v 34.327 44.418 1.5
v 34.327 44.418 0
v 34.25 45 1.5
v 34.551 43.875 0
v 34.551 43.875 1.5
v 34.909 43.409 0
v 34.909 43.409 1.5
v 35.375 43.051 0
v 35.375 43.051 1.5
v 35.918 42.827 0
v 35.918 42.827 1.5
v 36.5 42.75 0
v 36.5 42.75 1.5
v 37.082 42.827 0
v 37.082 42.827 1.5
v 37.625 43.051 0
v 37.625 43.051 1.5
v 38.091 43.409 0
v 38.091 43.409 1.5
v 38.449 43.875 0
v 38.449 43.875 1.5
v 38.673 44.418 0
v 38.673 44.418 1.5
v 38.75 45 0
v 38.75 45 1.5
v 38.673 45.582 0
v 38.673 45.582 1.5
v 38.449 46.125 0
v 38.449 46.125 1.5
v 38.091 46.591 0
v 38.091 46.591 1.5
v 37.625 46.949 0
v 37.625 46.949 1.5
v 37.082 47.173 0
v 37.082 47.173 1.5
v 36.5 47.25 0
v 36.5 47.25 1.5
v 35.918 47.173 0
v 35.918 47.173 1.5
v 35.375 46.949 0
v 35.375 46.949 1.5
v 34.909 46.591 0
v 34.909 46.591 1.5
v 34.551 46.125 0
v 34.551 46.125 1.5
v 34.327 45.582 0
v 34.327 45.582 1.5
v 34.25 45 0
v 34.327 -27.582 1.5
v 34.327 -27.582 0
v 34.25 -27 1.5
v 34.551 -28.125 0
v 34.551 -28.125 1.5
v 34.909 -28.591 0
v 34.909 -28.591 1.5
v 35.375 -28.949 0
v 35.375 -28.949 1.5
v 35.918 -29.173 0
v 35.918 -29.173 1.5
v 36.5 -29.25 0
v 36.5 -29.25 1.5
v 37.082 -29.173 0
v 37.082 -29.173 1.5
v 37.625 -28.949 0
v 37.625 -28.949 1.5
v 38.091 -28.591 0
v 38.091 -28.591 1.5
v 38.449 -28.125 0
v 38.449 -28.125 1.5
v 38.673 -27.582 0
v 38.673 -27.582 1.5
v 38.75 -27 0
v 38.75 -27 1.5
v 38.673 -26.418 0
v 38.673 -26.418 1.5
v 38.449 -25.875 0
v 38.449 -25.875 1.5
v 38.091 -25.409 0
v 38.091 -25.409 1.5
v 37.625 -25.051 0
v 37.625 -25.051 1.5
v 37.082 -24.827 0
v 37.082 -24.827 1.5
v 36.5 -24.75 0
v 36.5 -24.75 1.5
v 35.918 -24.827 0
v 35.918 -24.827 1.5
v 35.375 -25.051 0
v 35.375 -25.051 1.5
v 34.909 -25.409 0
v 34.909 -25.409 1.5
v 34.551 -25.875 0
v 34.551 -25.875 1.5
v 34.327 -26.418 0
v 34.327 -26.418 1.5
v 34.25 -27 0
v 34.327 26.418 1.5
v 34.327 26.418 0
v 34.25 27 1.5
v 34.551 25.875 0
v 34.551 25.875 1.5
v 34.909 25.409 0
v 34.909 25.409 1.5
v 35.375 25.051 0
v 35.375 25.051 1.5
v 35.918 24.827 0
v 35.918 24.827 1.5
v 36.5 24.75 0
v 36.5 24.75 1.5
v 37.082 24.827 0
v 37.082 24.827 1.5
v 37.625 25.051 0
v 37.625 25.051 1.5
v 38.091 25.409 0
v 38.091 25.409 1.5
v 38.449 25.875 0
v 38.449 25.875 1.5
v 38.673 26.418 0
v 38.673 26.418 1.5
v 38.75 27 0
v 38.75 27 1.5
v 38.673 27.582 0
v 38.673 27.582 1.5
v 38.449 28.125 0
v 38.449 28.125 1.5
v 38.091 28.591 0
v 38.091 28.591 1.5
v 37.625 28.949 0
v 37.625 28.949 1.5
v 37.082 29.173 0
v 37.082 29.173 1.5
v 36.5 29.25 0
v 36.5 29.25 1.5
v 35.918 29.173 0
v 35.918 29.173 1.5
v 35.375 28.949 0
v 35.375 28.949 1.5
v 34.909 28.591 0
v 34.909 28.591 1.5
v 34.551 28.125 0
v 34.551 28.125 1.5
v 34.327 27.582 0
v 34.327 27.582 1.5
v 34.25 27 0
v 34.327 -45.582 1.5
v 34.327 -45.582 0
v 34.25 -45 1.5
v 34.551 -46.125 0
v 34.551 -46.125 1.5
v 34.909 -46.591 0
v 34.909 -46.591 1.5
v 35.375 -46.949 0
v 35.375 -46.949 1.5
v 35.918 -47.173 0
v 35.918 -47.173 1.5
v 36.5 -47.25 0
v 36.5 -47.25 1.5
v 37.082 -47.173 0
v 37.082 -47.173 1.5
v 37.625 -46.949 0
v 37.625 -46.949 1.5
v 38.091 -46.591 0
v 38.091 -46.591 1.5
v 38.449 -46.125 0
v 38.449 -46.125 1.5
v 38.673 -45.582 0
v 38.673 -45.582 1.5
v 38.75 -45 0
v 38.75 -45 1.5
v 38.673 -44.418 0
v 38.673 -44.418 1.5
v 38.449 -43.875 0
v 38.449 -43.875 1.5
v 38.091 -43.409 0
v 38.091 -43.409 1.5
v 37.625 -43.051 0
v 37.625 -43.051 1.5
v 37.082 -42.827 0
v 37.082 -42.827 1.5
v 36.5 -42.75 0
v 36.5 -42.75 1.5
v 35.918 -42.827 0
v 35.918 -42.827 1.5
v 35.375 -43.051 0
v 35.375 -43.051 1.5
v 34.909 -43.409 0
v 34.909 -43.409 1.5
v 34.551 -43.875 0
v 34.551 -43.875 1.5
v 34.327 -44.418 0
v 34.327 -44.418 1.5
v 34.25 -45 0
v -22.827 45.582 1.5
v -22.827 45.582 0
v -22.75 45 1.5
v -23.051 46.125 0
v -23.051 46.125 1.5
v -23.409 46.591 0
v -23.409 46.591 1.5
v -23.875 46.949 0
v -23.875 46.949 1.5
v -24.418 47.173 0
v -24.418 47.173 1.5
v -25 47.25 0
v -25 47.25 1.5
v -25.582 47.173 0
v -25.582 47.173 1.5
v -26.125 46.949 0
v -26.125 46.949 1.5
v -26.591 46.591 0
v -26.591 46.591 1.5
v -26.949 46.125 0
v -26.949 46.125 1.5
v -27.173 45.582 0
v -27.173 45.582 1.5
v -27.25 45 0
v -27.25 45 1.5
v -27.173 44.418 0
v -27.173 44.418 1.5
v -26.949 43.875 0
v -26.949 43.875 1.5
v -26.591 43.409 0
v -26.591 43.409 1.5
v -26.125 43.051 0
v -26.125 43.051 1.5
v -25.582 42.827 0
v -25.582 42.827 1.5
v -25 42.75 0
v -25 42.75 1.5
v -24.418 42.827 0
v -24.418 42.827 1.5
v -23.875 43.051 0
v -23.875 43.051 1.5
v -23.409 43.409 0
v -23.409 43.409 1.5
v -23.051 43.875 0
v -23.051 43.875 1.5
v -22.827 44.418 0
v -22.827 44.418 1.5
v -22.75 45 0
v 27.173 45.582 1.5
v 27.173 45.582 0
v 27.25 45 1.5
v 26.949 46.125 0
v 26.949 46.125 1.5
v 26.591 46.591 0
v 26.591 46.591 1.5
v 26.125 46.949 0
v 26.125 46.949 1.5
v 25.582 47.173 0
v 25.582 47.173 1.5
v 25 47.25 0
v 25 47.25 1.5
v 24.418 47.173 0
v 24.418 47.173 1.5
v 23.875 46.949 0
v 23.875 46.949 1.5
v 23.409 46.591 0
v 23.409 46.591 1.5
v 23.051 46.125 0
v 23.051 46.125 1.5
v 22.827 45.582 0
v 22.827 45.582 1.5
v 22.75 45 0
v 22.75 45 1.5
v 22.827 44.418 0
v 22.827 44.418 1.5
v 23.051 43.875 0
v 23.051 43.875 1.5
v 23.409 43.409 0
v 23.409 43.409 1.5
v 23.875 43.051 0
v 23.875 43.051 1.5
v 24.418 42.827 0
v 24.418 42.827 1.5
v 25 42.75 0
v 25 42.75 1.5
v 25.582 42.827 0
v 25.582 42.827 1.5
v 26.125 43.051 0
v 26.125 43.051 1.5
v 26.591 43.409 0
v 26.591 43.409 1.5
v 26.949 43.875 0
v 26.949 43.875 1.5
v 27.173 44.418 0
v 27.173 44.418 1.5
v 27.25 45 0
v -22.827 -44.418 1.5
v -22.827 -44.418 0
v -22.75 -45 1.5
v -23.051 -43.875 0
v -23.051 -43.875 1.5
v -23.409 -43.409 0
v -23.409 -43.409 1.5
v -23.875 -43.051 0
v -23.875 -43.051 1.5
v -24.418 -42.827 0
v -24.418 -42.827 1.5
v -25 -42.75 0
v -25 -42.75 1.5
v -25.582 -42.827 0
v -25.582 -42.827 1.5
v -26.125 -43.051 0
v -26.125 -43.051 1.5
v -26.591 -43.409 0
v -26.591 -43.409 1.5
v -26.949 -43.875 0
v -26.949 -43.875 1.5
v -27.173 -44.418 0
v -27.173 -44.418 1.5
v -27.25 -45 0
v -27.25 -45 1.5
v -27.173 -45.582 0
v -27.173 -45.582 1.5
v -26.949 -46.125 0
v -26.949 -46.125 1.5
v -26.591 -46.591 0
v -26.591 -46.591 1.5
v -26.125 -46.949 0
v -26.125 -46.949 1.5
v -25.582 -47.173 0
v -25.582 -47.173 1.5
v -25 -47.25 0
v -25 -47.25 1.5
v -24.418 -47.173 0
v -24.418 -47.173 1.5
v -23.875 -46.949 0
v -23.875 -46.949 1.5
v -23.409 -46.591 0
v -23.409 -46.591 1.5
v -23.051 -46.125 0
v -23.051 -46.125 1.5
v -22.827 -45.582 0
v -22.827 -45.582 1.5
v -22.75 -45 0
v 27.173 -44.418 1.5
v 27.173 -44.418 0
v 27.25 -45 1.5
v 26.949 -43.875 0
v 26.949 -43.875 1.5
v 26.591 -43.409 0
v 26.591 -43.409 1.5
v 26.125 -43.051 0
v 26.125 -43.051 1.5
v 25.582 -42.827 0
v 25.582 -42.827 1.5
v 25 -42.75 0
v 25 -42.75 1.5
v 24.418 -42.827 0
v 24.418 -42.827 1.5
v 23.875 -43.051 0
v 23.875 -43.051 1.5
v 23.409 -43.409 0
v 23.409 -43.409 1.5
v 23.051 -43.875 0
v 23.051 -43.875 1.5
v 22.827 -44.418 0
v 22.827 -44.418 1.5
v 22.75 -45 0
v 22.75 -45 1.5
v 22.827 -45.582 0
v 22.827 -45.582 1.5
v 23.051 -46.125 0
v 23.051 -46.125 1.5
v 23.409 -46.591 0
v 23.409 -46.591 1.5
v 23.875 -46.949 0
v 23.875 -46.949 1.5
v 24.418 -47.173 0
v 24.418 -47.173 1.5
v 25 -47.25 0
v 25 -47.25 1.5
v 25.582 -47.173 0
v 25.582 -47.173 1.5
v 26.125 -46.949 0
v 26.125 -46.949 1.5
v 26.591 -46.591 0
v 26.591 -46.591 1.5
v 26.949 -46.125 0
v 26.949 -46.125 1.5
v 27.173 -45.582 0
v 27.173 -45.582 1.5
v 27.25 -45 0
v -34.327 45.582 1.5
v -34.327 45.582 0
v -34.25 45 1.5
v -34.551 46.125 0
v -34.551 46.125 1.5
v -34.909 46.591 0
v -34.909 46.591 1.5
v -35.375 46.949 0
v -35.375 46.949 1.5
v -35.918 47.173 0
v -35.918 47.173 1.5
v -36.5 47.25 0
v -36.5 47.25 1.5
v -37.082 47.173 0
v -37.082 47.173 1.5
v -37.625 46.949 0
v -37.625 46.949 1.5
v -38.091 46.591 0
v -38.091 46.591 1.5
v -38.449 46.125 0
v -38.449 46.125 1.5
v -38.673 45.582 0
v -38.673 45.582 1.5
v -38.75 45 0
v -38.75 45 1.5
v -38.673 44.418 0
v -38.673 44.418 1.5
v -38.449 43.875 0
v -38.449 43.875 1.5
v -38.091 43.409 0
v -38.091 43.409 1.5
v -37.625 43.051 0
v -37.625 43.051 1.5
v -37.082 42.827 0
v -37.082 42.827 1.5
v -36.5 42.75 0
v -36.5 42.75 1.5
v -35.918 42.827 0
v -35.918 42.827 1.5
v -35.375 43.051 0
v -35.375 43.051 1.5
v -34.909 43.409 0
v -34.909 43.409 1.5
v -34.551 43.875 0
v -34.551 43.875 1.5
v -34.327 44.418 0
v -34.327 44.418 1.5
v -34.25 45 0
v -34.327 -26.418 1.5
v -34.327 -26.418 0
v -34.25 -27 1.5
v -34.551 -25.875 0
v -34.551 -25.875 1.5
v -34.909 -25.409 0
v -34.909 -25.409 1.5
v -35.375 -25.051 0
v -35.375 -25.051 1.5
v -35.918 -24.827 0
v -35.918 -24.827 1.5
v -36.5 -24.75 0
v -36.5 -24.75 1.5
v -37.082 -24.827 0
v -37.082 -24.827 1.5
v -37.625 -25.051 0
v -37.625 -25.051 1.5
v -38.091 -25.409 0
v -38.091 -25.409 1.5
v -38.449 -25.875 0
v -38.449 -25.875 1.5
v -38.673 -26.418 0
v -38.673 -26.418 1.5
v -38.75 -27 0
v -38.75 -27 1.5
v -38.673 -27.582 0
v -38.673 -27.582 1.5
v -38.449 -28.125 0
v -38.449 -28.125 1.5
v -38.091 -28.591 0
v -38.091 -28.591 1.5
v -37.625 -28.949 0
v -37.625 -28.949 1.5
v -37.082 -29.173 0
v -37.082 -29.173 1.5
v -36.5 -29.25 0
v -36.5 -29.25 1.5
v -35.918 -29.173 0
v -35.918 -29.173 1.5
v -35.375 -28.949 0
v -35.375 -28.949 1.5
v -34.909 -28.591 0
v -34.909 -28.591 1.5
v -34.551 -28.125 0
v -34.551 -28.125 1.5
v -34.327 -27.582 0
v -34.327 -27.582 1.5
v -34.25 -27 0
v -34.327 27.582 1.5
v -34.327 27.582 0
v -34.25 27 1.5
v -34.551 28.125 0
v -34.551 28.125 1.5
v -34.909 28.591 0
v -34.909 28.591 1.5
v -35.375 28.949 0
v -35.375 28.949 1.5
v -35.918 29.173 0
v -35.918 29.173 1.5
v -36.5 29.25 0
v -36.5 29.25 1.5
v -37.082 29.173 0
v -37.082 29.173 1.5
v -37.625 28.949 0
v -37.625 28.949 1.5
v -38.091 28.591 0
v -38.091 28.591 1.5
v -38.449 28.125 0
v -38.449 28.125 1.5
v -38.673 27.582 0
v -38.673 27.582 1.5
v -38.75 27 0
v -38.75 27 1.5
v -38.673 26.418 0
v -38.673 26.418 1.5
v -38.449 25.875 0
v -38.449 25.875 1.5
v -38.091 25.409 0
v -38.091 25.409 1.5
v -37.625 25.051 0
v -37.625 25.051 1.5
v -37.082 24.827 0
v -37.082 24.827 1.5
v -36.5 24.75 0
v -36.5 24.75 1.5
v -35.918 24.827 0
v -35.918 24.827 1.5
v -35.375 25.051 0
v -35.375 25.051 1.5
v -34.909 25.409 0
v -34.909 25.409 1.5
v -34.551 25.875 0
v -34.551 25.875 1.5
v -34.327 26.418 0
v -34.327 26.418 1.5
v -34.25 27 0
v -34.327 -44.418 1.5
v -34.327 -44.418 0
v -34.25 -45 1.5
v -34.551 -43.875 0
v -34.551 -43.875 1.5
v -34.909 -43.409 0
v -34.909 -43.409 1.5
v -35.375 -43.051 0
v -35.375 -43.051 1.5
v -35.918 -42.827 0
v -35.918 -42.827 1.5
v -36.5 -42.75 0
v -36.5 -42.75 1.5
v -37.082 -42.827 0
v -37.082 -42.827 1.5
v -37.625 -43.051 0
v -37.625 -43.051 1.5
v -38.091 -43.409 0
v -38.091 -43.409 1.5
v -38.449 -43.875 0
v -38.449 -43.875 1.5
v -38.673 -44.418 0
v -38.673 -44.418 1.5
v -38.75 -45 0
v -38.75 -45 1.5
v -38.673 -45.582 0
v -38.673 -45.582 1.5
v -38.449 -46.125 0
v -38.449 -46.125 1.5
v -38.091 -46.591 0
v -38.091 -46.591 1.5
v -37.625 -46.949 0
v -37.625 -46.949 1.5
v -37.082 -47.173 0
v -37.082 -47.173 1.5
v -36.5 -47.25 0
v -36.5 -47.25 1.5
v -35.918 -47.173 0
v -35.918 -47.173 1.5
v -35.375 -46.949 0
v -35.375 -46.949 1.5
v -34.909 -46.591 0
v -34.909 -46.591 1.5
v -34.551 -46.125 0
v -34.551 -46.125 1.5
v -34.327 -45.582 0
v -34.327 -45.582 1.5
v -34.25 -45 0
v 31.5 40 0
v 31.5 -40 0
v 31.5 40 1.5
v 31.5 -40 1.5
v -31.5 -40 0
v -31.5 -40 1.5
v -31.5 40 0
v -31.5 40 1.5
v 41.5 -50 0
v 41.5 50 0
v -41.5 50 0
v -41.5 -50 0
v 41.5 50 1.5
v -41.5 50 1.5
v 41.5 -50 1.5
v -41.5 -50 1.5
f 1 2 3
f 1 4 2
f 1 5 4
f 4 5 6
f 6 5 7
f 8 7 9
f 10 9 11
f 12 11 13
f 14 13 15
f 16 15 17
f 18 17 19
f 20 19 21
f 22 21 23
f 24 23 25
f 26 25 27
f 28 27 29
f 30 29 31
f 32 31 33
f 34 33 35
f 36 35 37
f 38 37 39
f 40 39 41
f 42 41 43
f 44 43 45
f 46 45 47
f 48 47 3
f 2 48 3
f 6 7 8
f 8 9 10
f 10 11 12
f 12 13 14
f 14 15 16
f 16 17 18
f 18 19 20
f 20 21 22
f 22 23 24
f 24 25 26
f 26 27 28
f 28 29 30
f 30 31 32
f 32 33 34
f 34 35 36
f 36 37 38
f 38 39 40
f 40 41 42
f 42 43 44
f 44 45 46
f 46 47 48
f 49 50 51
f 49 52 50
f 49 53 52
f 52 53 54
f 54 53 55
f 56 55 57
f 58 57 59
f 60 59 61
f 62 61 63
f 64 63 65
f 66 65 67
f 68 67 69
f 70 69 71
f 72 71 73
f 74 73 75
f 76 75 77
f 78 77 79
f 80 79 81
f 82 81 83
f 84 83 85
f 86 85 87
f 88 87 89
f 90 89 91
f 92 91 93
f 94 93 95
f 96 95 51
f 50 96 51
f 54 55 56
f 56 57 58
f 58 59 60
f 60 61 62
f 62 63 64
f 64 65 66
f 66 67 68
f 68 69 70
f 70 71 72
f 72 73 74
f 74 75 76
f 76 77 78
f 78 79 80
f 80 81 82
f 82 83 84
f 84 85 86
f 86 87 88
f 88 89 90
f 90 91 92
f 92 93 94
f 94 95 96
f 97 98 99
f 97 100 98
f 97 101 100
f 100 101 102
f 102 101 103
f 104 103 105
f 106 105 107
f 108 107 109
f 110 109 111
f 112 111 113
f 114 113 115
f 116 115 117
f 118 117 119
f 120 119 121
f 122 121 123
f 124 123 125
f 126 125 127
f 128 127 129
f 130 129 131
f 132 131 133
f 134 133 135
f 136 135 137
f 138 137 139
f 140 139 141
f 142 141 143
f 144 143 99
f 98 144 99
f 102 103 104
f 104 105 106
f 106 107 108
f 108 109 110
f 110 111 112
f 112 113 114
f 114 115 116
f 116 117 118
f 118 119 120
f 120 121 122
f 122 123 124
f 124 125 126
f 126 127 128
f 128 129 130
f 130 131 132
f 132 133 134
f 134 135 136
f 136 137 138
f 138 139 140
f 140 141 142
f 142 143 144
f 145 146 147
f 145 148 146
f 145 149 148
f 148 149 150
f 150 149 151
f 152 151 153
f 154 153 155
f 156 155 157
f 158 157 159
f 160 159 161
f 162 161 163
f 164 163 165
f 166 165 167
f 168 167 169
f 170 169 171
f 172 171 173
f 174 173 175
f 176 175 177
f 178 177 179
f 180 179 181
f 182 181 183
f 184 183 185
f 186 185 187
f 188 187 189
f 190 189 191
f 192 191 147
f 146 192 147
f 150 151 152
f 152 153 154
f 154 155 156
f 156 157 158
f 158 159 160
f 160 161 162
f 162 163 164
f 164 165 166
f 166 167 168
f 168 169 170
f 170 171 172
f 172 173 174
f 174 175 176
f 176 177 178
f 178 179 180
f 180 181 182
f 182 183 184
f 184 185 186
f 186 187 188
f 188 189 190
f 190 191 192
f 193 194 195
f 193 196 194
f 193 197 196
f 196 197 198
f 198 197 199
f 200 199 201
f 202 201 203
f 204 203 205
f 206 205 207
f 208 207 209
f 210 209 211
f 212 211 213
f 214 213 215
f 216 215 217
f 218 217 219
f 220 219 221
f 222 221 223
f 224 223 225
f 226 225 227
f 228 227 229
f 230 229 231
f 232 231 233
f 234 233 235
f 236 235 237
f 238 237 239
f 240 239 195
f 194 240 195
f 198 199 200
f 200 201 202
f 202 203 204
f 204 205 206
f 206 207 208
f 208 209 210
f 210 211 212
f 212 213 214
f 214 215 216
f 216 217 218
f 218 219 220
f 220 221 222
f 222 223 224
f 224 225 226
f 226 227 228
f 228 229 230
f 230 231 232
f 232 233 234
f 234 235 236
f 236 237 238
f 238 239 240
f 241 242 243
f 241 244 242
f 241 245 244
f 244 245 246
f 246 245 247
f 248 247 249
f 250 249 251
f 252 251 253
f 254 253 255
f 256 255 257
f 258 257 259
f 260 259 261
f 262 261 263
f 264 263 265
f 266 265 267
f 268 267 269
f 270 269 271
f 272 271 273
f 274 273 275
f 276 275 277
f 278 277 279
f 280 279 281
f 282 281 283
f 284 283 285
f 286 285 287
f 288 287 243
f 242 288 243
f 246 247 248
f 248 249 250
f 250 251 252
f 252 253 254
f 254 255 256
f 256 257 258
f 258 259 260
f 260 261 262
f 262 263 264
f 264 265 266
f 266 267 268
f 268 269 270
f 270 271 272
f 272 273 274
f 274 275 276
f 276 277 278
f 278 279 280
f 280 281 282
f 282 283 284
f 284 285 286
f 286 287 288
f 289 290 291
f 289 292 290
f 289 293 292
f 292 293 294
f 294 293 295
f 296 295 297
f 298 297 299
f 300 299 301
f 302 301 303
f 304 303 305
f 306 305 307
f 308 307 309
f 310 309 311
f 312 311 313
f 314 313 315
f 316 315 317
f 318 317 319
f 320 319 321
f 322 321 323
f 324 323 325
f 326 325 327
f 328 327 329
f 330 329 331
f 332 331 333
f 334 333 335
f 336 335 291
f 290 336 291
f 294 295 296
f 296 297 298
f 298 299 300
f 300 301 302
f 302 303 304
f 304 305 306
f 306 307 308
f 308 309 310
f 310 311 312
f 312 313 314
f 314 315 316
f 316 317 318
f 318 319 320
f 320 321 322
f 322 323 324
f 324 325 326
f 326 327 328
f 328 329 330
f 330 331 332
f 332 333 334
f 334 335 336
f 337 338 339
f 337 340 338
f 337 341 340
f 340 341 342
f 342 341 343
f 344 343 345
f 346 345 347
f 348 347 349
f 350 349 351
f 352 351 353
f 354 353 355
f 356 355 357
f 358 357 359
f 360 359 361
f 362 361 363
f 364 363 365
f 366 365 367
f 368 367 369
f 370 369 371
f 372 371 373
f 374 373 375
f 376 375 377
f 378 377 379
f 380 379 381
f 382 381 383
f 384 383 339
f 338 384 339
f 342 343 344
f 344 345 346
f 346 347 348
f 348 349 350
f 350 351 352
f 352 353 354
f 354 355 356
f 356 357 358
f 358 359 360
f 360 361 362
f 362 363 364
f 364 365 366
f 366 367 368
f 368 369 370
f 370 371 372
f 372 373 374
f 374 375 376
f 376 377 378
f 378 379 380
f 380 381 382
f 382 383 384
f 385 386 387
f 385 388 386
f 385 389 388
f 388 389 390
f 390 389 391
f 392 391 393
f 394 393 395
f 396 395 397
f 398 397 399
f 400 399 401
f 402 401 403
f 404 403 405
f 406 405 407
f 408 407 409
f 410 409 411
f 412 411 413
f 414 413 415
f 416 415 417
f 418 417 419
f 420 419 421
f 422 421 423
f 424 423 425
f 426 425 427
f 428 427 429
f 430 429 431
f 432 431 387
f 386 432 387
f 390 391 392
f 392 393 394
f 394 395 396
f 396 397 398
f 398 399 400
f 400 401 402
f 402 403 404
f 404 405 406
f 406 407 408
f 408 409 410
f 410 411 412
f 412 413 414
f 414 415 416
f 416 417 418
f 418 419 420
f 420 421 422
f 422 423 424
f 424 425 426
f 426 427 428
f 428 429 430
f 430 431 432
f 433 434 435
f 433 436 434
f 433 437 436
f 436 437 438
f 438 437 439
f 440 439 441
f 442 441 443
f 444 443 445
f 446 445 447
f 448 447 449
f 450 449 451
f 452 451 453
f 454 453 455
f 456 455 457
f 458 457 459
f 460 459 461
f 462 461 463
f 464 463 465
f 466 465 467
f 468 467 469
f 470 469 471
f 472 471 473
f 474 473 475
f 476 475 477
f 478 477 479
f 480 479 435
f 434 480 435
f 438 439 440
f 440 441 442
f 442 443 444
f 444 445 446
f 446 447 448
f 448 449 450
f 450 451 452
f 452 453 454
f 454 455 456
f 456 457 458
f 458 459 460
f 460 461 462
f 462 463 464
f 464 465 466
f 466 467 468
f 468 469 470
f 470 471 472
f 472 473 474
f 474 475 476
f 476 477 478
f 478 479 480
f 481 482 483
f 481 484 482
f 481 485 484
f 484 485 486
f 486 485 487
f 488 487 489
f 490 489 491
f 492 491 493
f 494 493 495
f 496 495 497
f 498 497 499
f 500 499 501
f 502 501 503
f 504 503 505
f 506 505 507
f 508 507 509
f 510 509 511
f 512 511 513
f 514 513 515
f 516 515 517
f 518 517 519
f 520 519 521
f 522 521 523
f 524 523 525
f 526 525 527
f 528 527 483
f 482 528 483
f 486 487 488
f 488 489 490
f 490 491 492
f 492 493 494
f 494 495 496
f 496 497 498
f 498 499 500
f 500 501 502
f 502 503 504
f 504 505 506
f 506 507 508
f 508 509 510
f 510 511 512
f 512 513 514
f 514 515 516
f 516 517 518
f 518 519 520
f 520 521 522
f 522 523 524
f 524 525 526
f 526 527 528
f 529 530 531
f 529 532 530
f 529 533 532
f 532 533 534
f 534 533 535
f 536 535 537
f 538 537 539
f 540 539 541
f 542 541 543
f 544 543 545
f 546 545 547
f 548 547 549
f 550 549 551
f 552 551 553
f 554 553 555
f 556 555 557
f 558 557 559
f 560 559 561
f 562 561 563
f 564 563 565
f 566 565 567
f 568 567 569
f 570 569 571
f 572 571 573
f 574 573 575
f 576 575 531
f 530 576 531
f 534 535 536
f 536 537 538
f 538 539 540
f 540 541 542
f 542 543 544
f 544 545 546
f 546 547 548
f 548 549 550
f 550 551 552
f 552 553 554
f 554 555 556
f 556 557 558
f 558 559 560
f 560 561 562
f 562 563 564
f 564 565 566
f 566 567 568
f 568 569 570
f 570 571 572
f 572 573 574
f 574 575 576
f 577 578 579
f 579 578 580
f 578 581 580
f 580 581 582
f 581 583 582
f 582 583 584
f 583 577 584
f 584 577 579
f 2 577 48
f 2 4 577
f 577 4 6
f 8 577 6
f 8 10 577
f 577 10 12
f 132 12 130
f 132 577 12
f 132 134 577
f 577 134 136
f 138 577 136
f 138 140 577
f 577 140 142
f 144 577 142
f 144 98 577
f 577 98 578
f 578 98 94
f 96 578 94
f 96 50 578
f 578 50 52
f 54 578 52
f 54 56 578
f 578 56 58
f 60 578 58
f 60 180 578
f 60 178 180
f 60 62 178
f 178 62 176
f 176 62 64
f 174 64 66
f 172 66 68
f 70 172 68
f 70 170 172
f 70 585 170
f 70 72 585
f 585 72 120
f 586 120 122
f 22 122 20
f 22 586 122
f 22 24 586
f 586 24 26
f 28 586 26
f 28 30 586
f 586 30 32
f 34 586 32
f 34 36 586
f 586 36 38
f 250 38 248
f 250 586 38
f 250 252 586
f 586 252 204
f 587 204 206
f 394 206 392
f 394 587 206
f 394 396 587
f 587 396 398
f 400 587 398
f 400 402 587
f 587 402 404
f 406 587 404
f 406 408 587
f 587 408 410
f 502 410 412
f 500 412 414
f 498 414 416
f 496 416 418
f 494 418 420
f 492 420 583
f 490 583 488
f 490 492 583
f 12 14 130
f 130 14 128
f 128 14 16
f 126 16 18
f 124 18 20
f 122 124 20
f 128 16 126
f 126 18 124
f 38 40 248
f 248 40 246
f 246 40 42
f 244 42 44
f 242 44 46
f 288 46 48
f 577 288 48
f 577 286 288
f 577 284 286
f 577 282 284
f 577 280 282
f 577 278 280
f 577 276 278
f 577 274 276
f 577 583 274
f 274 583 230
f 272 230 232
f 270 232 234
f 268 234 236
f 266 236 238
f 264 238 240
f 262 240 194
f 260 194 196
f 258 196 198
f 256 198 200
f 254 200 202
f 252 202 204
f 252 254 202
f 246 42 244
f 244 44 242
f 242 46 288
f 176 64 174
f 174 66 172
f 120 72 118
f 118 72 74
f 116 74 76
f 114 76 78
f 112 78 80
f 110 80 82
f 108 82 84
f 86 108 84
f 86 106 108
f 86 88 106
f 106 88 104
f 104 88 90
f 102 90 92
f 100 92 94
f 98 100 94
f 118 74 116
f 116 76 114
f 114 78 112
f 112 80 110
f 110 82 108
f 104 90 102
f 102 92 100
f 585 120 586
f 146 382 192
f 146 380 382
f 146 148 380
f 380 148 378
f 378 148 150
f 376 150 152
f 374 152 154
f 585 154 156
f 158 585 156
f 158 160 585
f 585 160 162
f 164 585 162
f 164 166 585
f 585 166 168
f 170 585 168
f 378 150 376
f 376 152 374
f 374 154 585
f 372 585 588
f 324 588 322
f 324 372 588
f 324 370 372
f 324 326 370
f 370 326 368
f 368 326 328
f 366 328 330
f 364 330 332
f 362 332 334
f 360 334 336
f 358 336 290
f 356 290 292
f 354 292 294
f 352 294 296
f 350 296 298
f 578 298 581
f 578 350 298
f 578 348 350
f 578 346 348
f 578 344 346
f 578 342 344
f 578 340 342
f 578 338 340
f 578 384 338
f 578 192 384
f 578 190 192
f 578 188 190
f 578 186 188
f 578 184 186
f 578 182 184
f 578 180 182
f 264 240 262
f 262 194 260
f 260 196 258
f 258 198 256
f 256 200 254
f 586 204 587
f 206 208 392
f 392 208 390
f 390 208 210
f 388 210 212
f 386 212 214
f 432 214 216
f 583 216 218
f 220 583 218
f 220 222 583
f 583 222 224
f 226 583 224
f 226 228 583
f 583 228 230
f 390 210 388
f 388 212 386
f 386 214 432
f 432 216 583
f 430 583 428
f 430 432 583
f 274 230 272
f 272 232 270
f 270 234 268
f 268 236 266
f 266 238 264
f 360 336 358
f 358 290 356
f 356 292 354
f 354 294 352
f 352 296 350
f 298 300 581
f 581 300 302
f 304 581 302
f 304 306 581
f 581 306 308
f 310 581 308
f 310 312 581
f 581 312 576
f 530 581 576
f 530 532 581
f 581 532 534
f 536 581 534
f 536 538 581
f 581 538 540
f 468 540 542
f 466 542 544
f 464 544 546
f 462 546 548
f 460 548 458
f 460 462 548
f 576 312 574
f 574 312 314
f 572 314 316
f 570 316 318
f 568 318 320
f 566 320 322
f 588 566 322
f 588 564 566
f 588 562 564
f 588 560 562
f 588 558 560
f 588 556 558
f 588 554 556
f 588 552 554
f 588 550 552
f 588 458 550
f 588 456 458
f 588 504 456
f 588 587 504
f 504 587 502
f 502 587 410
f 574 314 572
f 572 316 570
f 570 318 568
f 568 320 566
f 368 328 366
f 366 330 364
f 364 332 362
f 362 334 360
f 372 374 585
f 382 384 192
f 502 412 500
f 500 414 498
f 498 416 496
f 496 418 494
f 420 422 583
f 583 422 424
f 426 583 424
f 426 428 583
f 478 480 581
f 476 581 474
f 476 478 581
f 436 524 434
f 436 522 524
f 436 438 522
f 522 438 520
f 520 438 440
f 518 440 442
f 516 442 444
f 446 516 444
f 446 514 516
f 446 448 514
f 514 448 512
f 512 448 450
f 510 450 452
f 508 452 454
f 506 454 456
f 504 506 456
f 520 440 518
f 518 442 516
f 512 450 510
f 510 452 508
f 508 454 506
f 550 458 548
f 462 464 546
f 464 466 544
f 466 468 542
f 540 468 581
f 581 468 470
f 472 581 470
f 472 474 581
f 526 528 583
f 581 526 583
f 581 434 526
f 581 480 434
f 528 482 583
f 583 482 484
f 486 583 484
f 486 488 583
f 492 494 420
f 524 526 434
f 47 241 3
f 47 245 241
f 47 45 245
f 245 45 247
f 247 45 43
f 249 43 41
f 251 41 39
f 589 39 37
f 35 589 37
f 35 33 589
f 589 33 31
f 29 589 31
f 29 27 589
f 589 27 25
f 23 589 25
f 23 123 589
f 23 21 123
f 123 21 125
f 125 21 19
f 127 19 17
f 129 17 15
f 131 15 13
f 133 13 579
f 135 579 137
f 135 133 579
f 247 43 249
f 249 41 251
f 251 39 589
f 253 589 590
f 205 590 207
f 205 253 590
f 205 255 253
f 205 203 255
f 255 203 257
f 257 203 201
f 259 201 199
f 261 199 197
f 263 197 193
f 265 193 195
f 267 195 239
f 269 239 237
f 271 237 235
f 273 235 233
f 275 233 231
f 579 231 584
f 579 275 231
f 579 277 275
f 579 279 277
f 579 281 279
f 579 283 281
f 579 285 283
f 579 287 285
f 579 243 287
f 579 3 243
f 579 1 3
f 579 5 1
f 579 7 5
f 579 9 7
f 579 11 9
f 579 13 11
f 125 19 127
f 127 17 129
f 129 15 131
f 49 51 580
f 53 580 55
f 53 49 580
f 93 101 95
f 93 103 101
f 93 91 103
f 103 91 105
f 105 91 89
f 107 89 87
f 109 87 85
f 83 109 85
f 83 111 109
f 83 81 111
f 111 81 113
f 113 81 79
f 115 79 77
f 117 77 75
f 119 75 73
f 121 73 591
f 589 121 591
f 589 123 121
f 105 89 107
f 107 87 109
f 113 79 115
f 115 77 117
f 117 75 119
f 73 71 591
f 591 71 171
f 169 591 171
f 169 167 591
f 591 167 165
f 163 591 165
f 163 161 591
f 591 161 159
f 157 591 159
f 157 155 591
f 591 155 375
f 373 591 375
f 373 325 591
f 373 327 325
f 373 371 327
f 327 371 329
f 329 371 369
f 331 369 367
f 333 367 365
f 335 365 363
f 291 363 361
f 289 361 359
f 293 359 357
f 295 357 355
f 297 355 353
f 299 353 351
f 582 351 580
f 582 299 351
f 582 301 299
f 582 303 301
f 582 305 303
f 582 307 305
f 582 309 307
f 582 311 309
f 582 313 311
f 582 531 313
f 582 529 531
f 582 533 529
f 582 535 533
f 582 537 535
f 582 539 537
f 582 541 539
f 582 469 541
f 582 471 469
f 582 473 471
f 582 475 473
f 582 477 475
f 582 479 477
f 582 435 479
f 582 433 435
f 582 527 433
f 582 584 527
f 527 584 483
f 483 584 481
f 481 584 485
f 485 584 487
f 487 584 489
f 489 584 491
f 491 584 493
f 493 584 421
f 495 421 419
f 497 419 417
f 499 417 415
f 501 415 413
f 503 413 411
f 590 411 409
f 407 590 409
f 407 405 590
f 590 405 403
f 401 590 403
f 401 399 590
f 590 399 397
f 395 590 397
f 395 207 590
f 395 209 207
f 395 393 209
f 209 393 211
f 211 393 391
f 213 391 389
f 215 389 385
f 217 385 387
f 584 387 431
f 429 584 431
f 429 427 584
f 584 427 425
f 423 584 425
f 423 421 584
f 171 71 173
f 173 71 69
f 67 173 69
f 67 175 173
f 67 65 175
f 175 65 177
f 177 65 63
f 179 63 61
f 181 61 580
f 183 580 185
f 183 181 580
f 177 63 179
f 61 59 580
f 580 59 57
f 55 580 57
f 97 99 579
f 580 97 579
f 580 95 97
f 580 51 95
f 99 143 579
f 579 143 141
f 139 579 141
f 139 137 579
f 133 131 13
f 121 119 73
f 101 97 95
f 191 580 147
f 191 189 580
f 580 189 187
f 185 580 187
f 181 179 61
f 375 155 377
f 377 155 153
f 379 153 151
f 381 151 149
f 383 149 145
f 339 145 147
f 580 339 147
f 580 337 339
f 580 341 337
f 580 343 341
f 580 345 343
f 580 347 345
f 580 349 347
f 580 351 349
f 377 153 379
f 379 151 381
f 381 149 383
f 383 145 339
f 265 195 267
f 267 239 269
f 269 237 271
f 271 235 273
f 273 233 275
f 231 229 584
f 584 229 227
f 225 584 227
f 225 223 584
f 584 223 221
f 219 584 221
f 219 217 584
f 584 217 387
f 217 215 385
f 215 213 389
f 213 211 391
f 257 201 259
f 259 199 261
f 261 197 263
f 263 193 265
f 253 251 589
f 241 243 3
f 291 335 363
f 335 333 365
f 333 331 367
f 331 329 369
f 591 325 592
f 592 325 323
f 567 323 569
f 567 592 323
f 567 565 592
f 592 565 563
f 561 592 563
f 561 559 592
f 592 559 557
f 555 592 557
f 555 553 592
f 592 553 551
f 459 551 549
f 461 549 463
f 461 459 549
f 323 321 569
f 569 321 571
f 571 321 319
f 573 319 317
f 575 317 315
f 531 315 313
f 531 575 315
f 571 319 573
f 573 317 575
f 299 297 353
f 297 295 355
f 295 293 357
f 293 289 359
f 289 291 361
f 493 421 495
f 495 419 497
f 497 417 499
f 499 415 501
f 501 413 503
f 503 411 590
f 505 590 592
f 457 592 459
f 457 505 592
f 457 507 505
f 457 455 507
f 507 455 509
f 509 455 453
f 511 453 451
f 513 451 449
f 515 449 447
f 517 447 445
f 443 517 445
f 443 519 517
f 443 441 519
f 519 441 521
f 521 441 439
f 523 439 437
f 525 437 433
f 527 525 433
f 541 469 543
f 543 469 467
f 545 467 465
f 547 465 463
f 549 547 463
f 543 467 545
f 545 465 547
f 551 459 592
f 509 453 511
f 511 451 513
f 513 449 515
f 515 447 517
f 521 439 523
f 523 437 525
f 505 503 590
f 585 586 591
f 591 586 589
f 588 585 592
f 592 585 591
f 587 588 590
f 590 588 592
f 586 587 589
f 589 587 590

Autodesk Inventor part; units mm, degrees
ref_plane "YZ Plane" through (0, 0, 0) normal (1, 0, 0) x (0, 1, 0)
ref_plane "XZ Plane" through (0, 0, 0) normal (0, 1, 0) x (-1, 0, 0)
ref_plane "XY Plane" through (0, 0, 0) normal (0, 0, 1) x (1, 0, 0)
sketch "Sketch1" plane through (0, 0, 0) normal (0, 0, 1) x (1, 0, 0)
  line L0 (-41.5, 50) -> (41.5, 50)
  line L1 (41.5, 50) -> (41.5, -50)
  line L2 (41.5, -50) -> (-41.5, -50)
  line L3 (-41.5, -50) -> (-41.5, 50)
  line L4 (31.5, 40) -> (-31.5, 40)
  line L5 (-31.5, 40) -> (-31.5, -40)
  line L6 (-31.5, -40) -> (31.5, -40)
  line L7 (31.5, -40) -> (31.5, 40)
  line L8 (-41.5, -45) -> (41.5, -45) construction
  line L9 (0, 71.7466) -> (0, -78.0681) construction
  line L10 (-60.2597, 0) -> (74.2823, 0) construction
  line L11 (-36.5, 50) -> (-36.5, -50) construction
  circle A0 centre (-36.5, -27) radius 2.25
  line L12 (-41.5, 45) -> (41.5, 45) construction
  circle A1 centre (-36.5, 45) radius 2.25
  circle A2 centre (-36.5, -45) radius 2.25
  circle A3 centre (-36.5, 27) radius 2.25
  circle A4 centre (-25, -45) radius 2.25
  circle A5 centre (25, -45) radius 2.25
  line L13 (30, 50) -> (30, -50) construction
  line L14 (-30, 50) -> (-30, -50) construction
  line L15 (-31, -38) -> (31, -38)
  line L16 (31, -38) -> (31, -52)
  line L17 (31, -52) -> (-31, -52)
  line L18 (-31, -52) -> (-31, -38)
  line L19 (-31.5, -40) -> (-16.5, -40)
  line L20 (-16.5, -40) -> (-16.5, -20)
  line L21 (-16.5, -20) -> (-31.5, -20)
  line L22 (-31.5, -20) -> (-31.5, -40)
  line L23 (-26.5, -26) -> (-21.5, -26) construction
  line L24 (-26.5, -27.5) -> (-21.5, -27.5)
  line L25 (-21.5, -24.5) -> (-26.5, -24.5)
  arc A6 (-26.5, -24.5) -> (-26.5, -27.5) centre (-26.5, -26) ccw
  arc A7 (-21.5, -27.5) -> (-21.5, -24.5) centre (-21.5, -26) ccw
  line L26 (-26.5, -34) -> (-21.5, -34) construction
  line L27 (-26.5, -35.5) -> (-21.5, -35.5)
  line L28 (-21.5, -32.5) -> (-26.5, -32.5)
  arc A8 (-26.5, -32.5) -> (-26.5, -35.5) centre (-26.5, -34) ccw
  arc A9 (-21.5, -35.5) -> (-21.5, -32.5) centre (-21.5, -34) ccw
  line L29 (-43.5, 33) -> (-29.5, 33)
  line L30 (-29.5, 33) -> (-29.5, -33)
  line L31 (-29.5, -33) -> (-43.5, -33)
  line L32 (-43.5, -33) -> (-43.5, 33)
  point P0 (0, 0)
  point P1 (0, 50)
  point P2 (41.5, 0)
  point P3 (0, 45)
  point P4 (-24, -26)
  point P5 (-24, -20)
  point P6 (-16.5, -30)
  point P7 (-24, -34)
  dimension "d0" = 83
  dimension "d1" = 100
  dimension "d5" = 5
  dimension "d6" = 5
  dimension "d9" = 5
  dimension "d12" = 4.5
  dimension "d17" = 5
  dimension "d41" = 4.5
  dimension "d42" = 4.5
  dimension "d87" = 4.5
  dimension "d89" = 4.5
  dimension "d90" = 4.5
  dimension "d91" = 30
  dimension "d92" = 30
  dimension "d93" = 5
  dimension "d94" = 5
  dimension "d97" = 1
  dimension "d98" = 2
  dimension "d99" = 2
  dimension "d100" = 1
  dimension "d103" = 15
  dimension "d104" = 20
  dimension "d105" = 5
  dimension "d106" = 3
  dimension "d109" = 5
  dimension "d110" = 3
  dimension "d112" = 6
  dimension "d113" = 6
  dimension "d115" = 6
  dimension "d116" = 2
  dimension "d117" = 2
  dimension "d118" = 6
  dimension "d121" = 27
  dimension "d122" = 27
extrude "Extrusion12" add sketch "Sketch1" along normal blind 1.5 contours L0 L1 L2 L16 L6 L7 L4 L5 L29 L3 | L29 L5 L31 L3 | L31 L5 L6 L18 L2 L3 | L2 L18 L6 L16 | A0 | A1 | A2 | A3 | A4 | A5
extrude "Extrusion13" cut sketch "Sketch1" along normal blind 1.5 contours A0 | A1 | A2 | A3
extrude "Extrusion14" cut sketch "Sketch1" along normal blind 1.5 contours A4 | A5
mirror "Mirror6" about plane through (0, 0, 0) normal (0, 1, 0) of "Extrusion14"
mirror "Mirror7" about plane through (0, 0, 0) normal (1, 0, 0) of "Extrusion13"
equation "\"d12\" = screw"
equation "\"d41\" = screw"
equation "\"d42\" = screw"
equation "\"d87\" = screw"
equation "\"d89\" = screw"
equation "\"d90\" = screw"
equation "\"screw\" = 4.5"
properties part number "Side" material "PC/ABS Plastic"
